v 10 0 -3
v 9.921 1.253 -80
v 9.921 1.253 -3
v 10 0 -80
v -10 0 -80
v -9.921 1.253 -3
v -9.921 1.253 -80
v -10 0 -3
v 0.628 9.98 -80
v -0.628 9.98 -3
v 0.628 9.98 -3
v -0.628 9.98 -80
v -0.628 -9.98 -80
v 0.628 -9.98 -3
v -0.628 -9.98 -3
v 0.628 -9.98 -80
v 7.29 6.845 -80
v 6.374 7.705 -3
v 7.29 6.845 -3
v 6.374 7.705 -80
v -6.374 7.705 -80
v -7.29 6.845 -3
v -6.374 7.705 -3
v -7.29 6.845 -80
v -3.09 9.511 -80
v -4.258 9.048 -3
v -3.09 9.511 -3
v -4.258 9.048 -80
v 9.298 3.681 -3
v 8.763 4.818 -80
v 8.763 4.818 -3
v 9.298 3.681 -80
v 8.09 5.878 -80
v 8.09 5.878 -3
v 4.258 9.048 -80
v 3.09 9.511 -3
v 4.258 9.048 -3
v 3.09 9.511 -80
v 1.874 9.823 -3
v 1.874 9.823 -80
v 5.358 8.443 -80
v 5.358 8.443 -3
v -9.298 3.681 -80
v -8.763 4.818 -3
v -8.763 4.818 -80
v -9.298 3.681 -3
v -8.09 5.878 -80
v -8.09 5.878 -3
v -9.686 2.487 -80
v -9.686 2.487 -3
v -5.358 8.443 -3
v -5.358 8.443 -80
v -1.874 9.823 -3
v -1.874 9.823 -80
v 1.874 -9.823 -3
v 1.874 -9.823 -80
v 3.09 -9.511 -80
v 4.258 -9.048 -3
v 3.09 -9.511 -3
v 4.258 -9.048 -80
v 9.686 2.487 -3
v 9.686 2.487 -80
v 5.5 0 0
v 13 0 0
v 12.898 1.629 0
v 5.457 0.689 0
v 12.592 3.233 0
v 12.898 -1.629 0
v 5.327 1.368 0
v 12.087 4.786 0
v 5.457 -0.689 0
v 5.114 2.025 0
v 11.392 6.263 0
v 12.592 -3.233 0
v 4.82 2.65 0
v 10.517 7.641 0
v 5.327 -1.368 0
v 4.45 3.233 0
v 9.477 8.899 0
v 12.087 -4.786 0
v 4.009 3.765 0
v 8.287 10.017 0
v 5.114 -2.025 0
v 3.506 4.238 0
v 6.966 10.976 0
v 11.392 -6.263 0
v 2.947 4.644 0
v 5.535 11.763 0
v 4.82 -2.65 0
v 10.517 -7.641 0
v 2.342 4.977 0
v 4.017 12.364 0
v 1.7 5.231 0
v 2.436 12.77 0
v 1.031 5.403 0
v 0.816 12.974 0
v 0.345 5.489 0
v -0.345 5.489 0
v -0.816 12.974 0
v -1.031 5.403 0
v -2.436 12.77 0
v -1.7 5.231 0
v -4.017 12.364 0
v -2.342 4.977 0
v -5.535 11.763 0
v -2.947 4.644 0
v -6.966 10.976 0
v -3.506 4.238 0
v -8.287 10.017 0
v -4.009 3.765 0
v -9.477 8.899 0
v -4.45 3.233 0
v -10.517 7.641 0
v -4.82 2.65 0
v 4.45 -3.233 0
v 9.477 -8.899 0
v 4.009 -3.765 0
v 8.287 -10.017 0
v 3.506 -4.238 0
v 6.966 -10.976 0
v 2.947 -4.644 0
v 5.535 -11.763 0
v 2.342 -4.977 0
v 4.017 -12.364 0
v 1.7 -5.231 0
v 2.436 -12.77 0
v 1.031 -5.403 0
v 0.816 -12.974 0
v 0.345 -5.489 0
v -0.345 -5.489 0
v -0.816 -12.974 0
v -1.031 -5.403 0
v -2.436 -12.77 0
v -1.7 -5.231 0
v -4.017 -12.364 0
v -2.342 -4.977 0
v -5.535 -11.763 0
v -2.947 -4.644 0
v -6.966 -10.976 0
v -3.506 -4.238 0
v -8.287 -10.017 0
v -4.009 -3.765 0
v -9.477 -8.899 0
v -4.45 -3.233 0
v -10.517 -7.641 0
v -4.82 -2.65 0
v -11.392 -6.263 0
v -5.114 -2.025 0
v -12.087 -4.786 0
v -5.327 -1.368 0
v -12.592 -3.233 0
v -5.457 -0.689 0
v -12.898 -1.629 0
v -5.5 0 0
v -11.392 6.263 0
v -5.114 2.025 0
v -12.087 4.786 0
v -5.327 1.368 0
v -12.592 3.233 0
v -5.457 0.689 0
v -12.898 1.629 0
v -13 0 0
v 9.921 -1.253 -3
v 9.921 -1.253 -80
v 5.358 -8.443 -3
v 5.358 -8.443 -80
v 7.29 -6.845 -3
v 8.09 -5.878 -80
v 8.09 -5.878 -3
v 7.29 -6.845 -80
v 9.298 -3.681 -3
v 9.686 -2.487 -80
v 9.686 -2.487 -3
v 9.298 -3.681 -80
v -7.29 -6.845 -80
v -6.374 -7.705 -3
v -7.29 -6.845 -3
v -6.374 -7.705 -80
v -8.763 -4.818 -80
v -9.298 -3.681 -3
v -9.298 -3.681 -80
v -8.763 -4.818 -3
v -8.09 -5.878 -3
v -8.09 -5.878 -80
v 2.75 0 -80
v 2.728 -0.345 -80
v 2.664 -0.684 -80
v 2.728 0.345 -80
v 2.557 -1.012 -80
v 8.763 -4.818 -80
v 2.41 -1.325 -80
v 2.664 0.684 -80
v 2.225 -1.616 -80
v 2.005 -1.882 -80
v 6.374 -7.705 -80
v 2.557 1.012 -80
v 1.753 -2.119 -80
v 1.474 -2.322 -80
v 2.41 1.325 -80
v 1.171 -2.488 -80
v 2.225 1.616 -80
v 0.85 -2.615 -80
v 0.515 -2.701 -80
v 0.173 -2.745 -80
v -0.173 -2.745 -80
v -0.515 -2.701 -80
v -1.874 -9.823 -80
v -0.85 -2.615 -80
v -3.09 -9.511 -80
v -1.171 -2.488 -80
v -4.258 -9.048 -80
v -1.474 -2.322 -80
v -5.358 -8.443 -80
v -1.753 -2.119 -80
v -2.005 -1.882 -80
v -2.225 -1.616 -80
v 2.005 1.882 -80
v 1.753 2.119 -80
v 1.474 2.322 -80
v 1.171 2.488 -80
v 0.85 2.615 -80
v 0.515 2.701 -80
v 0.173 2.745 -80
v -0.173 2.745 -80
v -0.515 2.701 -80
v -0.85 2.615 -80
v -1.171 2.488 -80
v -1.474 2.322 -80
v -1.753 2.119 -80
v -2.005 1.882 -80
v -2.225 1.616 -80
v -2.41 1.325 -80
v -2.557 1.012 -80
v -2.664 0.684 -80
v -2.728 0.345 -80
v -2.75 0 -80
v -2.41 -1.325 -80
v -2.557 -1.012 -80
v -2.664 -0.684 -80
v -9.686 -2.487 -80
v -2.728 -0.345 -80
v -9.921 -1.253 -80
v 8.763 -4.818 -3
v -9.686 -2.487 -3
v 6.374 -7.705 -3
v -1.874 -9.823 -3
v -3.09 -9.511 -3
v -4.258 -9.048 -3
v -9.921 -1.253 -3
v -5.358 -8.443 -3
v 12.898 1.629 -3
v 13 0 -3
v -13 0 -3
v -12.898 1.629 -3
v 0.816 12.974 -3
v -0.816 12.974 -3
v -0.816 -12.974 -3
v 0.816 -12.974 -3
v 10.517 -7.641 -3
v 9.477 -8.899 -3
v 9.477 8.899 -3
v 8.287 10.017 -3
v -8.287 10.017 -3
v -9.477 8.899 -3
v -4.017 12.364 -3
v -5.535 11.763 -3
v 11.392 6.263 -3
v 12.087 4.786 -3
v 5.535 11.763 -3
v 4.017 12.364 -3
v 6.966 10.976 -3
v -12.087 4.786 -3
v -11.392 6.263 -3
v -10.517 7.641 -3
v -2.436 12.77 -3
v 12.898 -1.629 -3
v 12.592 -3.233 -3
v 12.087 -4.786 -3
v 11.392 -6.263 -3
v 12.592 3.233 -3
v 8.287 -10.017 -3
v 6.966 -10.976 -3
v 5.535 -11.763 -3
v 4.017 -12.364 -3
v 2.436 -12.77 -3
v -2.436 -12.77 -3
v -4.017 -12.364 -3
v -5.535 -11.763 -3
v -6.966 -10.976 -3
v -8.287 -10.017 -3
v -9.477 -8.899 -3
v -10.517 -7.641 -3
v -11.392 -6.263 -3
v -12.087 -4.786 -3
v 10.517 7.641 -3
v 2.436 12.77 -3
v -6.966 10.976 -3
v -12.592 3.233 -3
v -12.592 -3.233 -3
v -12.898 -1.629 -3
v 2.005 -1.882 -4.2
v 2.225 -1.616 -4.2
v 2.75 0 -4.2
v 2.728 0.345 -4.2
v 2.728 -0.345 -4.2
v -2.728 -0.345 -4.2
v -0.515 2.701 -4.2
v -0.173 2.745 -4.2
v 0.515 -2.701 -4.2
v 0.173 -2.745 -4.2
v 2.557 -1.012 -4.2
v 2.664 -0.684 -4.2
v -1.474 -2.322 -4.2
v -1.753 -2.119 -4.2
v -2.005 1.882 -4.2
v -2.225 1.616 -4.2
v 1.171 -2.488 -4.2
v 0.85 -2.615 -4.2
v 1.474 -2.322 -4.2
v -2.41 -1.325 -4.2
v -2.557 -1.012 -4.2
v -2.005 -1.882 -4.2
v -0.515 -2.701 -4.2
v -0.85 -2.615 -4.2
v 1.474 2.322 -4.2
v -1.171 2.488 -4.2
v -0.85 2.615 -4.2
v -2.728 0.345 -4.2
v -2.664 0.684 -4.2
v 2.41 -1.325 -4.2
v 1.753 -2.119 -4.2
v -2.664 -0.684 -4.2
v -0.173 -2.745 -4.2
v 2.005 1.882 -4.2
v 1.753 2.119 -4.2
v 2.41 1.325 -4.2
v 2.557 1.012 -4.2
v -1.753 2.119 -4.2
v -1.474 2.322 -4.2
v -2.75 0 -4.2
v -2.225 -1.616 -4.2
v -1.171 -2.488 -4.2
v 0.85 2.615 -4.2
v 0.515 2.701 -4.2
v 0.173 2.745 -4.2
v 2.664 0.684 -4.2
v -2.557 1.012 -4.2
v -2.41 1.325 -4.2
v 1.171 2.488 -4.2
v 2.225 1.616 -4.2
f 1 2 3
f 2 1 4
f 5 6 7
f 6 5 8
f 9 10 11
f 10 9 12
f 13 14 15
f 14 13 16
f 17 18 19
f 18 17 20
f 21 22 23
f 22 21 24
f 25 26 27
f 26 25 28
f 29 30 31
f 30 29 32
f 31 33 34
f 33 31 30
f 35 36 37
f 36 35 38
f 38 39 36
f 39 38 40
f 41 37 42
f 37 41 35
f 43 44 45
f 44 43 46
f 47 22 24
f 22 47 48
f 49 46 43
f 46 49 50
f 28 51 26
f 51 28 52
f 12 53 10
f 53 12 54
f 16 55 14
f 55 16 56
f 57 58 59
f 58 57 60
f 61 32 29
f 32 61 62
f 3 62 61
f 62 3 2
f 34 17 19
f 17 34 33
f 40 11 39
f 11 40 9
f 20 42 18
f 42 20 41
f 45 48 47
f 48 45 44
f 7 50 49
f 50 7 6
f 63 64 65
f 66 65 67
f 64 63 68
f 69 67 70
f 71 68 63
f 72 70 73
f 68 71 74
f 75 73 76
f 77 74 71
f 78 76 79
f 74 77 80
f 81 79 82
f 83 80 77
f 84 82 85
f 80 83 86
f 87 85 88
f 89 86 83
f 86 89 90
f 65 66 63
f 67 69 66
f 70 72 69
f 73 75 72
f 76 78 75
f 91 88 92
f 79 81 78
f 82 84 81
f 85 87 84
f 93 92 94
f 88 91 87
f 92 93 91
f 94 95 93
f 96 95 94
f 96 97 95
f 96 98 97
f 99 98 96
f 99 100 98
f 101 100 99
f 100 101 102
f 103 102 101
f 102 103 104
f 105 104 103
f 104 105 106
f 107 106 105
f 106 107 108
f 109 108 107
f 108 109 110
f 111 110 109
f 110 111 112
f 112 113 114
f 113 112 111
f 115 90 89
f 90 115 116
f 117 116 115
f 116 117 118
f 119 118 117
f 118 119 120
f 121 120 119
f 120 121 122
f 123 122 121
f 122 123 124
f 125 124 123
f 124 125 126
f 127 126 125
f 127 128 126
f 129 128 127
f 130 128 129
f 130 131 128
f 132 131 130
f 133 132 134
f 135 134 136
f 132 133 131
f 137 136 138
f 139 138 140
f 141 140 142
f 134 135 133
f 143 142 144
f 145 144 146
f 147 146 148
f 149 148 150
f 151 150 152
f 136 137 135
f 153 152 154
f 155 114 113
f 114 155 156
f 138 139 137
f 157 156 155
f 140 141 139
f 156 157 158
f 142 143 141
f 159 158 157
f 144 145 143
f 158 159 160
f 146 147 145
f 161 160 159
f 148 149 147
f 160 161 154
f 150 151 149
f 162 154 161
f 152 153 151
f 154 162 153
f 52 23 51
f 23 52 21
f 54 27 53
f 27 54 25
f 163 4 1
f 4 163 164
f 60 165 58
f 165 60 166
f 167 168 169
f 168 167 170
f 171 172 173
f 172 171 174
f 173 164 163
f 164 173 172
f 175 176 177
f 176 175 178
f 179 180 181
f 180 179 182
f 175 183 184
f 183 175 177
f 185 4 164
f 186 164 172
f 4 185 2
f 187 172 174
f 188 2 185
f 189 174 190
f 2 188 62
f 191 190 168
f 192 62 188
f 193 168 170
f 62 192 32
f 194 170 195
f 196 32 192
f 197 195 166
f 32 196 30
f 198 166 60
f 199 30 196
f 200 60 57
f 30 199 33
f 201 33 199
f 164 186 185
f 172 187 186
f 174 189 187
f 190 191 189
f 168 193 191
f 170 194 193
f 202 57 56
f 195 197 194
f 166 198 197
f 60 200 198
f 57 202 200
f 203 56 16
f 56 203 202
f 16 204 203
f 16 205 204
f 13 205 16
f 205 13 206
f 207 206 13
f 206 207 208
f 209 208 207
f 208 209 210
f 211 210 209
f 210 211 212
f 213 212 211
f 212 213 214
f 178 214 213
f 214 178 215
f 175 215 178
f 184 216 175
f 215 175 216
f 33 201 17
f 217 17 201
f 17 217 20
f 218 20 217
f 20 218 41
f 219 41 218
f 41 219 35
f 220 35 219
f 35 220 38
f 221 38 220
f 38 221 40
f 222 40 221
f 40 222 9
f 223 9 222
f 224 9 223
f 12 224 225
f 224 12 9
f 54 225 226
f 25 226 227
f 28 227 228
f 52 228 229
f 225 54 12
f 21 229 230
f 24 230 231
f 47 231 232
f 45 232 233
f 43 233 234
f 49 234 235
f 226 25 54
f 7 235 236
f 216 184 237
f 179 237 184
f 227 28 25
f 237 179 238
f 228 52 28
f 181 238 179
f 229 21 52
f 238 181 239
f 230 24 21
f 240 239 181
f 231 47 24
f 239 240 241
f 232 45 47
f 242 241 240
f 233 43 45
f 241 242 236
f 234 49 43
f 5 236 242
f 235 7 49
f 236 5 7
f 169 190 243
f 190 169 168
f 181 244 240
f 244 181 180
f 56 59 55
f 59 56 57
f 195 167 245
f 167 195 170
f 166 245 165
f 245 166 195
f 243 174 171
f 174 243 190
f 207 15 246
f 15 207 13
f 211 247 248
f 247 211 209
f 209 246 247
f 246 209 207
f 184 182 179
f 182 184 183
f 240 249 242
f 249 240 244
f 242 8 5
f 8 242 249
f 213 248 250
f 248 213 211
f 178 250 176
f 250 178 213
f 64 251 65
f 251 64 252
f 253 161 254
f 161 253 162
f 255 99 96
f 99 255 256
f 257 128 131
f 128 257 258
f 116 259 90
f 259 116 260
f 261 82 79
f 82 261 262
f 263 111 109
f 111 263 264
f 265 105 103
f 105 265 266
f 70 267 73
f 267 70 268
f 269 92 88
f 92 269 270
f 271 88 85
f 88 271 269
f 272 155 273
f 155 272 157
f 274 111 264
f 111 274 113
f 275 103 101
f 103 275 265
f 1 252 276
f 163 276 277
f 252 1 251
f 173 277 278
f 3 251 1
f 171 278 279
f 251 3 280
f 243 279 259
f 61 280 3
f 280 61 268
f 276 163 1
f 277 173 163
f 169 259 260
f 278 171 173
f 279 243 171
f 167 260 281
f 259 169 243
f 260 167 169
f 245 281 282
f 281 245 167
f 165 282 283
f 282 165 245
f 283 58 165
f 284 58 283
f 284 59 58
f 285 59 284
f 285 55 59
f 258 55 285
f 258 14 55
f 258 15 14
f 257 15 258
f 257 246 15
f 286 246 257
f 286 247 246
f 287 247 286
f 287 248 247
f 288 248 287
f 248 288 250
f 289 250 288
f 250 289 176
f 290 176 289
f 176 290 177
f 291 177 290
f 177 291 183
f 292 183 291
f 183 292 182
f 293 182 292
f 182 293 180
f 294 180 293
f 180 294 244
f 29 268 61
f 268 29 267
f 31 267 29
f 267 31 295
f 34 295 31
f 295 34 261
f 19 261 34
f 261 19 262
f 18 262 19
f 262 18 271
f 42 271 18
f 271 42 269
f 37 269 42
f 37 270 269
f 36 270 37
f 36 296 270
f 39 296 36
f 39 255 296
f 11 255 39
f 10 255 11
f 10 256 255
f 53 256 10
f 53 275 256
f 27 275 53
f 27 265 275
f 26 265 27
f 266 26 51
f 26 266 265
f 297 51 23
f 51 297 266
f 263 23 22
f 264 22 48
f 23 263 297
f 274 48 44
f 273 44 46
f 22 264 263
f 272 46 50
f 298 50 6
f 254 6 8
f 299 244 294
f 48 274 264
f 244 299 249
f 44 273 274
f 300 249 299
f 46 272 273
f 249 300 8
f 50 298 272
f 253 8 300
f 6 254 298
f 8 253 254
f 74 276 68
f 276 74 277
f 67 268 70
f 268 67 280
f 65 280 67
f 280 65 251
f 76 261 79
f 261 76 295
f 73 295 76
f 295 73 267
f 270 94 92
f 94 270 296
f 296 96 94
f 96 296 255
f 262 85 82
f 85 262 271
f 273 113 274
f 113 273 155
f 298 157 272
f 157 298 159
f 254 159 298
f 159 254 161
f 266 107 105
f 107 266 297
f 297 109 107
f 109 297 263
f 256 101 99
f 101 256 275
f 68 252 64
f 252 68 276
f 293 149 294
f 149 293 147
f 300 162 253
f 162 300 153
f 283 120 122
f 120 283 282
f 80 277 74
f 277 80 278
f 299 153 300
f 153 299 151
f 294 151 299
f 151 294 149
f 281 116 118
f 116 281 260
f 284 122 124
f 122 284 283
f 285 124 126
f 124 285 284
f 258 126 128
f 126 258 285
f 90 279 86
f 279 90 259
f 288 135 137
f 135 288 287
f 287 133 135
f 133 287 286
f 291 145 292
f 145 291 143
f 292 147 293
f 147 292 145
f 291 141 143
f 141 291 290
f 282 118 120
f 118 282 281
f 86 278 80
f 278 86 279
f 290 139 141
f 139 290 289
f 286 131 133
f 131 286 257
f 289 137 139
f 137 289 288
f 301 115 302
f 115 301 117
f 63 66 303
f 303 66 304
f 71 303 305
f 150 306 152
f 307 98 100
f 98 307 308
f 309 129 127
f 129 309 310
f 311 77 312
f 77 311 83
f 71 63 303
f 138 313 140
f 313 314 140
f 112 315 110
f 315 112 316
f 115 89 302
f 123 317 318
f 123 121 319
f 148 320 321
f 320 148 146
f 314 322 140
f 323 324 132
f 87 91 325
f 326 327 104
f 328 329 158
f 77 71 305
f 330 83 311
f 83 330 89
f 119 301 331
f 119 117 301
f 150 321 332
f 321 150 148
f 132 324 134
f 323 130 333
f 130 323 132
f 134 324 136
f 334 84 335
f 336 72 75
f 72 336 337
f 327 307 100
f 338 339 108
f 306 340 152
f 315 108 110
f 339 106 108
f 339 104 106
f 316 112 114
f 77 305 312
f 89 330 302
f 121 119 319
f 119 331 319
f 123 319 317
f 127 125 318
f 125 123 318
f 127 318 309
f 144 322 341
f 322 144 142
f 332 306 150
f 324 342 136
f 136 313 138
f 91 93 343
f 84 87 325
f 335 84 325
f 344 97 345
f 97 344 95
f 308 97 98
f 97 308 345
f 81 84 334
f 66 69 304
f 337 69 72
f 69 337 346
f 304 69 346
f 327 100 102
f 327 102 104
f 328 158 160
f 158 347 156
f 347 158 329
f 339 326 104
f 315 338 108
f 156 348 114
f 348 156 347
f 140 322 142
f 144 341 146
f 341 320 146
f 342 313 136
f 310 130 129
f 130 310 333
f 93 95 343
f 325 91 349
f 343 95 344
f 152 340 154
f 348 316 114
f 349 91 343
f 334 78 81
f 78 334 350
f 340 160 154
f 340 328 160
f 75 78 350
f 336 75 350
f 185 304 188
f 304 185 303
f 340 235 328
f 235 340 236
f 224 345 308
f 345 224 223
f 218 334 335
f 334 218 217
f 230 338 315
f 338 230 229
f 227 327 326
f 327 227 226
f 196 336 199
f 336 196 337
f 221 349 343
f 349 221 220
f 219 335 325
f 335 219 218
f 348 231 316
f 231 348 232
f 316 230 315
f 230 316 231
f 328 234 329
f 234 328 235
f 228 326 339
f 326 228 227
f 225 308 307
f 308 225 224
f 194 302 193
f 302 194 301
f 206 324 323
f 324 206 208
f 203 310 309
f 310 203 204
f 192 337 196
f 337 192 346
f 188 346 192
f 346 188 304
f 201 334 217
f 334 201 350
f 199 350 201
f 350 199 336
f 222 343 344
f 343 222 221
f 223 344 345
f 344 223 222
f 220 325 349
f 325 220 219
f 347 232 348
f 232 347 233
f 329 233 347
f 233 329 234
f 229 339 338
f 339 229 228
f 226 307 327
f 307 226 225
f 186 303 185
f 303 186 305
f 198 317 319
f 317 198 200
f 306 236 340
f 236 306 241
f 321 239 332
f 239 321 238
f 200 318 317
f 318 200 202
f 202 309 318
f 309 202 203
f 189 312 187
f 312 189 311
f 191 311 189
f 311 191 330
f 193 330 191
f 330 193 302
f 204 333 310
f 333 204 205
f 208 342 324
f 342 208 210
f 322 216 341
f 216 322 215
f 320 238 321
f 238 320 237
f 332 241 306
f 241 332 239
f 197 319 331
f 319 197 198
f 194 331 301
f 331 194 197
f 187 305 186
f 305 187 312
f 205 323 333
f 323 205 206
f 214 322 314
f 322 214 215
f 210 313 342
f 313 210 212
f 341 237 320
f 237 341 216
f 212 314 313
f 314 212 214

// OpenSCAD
$fn = 50;


difference() {
	union() {
		translate(v = [0, 0, -80.0000000000]) {
			cylinder(h = 80, r = 10.0000000000);
		}
		translate(v = [0, 0, -3.0000000000]) {
			cylinder(h = 3, r = 13.0000000000);
		}
	}
	union() {
		translate(v = [0, 0, 0]) {
			rotate(a = [0, 0, 0]) {
				difference() {
					union() {
						#translate(v = [0, 0, -80.0000000000]) {
							cylinder(h = 80, r = 2.2500000000);
						}
						#translate(v = [0, 0, -4.2000000000]) {
							cylinder(h = 4.2000000000, r1 = 2.7500000000, r2 = 5.5000000000);
						}
						#translate(v = [0, 0, -80.0000000000]) {
							cylinder(h = 80, r = 2.7500000000);
						}
						#translate(v = [0, 0, -80.0000000000]) {
							cylinder(h = 80, r = 2.2500000000);
						}
					}
					union();
				}
			}
		}
	}
}
